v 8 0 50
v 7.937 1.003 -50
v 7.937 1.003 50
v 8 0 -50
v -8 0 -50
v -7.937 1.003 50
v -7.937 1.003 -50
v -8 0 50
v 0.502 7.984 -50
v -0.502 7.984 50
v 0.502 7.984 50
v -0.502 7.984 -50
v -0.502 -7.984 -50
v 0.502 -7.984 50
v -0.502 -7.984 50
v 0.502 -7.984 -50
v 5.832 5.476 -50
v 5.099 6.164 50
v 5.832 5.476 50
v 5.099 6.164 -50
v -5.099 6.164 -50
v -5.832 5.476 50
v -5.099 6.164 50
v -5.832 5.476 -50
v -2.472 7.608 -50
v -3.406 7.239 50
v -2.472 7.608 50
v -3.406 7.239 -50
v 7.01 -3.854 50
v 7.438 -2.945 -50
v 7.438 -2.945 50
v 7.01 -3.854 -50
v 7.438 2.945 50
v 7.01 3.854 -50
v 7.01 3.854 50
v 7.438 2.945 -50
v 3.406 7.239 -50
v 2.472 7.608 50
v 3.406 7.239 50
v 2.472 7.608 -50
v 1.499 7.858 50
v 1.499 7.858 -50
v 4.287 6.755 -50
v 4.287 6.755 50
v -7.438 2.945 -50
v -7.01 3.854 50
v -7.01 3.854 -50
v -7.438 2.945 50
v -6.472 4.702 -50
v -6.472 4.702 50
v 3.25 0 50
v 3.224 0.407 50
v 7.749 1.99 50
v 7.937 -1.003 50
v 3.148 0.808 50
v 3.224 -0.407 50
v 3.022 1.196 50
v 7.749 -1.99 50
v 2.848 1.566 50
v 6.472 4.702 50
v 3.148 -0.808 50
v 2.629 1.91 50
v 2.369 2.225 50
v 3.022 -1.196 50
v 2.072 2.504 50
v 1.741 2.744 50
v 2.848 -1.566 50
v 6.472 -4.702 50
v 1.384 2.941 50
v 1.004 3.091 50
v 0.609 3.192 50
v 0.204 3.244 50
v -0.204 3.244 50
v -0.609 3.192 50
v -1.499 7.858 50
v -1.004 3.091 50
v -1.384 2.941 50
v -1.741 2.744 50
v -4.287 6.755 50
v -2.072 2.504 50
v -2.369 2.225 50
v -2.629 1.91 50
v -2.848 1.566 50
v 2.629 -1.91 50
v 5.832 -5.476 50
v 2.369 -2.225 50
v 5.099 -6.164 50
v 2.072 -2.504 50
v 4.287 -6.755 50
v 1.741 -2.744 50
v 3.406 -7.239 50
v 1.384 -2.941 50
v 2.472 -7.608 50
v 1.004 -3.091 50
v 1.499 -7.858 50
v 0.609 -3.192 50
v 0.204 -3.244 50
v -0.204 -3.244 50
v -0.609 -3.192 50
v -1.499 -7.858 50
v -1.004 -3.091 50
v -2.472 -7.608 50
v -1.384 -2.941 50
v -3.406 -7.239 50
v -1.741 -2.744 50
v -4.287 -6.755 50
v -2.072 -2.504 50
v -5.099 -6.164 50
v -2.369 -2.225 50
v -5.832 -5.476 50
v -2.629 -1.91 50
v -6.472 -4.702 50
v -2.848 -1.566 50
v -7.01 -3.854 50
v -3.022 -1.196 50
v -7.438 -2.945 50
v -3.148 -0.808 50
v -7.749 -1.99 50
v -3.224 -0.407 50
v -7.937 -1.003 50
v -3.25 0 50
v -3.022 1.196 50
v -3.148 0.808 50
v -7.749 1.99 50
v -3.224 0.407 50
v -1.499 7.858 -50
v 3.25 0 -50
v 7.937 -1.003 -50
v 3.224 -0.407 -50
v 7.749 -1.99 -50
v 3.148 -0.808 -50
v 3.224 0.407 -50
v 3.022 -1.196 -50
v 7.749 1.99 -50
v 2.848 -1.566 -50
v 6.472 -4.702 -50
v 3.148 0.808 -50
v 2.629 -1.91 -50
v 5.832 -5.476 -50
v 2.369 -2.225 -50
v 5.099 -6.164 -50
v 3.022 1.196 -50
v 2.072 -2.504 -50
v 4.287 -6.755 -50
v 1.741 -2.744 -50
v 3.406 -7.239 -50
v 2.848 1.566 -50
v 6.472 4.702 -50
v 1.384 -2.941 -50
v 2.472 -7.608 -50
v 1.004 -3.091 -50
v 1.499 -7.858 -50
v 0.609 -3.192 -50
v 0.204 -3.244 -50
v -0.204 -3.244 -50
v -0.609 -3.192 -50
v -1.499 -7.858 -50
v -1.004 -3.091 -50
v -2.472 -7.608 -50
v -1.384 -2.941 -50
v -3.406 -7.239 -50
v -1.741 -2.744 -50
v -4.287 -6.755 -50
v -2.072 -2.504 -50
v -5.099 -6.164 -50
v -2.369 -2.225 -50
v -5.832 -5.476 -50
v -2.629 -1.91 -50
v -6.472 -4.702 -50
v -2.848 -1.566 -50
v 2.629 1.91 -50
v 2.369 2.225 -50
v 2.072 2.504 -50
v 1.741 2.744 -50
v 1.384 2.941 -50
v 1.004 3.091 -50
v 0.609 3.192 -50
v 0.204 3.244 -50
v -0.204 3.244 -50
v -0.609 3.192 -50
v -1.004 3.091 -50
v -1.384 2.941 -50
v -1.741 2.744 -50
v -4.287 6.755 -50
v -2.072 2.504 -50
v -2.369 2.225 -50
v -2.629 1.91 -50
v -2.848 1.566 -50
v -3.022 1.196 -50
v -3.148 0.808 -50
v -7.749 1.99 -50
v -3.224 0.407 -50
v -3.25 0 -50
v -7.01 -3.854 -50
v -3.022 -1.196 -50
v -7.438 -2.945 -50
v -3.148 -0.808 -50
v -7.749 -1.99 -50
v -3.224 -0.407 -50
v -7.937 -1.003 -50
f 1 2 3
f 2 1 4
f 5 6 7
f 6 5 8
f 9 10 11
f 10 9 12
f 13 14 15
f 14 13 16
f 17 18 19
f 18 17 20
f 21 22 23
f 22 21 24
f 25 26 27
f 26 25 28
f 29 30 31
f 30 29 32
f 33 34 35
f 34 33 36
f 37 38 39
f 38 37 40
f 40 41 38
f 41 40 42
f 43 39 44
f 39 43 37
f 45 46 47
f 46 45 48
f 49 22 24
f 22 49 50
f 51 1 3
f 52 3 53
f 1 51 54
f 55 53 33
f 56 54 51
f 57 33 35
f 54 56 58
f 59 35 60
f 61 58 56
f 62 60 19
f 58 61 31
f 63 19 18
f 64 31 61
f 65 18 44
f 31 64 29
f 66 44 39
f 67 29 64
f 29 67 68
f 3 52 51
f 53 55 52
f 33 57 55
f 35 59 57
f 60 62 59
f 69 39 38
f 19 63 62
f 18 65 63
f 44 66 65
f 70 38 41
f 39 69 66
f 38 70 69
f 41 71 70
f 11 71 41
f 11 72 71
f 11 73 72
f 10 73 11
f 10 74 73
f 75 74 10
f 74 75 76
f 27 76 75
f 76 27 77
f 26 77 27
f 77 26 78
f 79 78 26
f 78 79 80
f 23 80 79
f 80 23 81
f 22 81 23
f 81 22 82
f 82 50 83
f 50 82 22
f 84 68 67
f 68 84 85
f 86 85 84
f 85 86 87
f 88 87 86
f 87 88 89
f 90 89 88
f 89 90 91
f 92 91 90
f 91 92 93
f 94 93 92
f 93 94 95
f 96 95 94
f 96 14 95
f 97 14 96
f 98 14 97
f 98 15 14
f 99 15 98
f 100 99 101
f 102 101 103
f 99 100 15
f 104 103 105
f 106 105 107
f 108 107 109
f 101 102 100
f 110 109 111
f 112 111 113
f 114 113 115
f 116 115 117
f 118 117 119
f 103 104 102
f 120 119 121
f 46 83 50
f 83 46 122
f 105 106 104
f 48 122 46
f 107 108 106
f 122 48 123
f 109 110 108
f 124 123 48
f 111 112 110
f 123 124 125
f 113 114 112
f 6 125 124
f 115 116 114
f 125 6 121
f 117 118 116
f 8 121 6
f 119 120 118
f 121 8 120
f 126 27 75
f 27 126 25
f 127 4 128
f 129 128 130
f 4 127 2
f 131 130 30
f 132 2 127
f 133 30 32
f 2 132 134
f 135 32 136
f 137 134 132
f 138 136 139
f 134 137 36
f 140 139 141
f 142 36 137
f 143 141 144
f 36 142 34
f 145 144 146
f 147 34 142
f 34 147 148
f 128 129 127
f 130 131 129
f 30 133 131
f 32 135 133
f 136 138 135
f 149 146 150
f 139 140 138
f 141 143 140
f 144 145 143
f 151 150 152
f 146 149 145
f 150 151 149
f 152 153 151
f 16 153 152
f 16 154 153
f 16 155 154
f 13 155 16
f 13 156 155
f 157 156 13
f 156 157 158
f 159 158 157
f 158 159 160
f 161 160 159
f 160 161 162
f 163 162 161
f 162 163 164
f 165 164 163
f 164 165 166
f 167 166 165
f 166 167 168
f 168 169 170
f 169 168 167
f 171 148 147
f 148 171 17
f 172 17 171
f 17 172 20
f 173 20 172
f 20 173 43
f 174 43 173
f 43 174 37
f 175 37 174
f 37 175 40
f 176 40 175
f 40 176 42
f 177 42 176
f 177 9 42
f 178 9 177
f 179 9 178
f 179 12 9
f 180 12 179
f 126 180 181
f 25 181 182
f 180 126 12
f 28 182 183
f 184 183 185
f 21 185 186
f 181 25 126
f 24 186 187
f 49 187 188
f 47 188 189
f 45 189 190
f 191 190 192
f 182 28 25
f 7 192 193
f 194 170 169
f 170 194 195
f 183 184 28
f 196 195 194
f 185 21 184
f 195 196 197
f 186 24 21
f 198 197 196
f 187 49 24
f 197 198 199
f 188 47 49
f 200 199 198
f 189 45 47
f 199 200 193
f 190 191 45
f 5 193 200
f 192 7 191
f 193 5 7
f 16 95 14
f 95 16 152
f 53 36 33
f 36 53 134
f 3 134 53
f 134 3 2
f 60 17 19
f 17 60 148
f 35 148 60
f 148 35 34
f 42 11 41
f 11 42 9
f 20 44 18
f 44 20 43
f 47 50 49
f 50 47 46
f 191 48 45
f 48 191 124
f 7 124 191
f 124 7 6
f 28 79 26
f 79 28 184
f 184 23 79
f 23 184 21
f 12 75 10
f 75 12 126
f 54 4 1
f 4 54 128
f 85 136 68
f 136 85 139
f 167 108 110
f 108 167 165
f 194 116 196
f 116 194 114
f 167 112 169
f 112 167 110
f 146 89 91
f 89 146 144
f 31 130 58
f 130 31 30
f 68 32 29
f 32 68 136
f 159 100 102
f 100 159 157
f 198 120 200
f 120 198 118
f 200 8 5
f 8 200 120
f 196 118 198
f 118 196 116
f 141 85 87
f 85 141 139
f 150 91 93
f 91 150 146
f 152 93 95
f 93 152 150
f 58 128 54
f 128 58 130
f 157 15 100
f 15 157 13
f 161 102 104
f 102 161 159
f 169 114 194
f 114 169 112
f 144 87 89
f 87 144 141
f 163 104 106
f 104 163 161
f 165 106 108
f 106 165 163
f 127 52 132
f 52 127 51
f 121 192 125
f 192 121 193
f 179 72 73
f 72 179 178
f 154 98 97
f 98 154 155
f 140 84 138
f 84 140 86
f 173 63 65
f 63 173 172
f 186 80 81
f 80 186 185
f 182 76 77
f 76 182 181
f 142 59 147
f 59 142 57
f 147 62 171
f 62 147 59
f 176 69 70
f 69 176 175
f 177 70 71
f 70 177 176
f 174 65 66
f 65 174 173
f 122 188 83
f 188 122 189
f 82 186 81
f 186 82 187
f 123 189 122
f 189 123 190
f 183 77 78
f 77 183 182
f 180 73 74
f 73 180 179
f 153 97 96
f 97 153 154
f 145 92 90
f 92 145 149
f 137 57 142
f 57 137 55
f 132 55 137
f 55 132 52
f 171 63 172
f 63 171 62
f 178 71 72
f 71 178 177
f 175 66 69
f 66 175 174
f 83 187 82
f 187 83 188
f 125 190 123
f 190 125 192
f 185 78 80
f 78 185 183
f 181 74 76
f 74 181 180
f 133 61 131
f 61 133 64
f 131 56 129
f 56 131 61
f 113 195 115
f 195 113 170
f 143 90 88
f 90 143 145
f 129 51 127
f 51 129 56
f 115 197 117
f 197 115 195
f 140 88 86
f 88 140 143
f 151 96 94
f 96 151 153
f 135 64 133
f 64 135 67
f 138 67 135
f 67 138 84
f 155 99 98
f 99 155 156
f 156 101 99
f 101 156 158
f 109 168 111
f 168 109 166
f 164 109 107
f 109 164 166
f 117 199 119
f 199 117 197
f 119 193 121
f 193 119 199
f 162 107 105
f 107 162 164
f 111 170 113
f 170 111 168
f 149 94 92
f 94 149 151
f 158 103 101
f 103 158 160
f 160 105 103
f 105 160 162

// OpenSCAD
$fn = 50;


difference() {
	union() {
		translate(v = [0, 0, -50.0000000000]) {
			cylinder(h = 100, r = 8.0000000000);
		}
	}
	union() {
		translate(v = [0, 0, -100.0000000000]) {
			cylinder(h = 200, r = 3.2500000000);
		}
	}
}
